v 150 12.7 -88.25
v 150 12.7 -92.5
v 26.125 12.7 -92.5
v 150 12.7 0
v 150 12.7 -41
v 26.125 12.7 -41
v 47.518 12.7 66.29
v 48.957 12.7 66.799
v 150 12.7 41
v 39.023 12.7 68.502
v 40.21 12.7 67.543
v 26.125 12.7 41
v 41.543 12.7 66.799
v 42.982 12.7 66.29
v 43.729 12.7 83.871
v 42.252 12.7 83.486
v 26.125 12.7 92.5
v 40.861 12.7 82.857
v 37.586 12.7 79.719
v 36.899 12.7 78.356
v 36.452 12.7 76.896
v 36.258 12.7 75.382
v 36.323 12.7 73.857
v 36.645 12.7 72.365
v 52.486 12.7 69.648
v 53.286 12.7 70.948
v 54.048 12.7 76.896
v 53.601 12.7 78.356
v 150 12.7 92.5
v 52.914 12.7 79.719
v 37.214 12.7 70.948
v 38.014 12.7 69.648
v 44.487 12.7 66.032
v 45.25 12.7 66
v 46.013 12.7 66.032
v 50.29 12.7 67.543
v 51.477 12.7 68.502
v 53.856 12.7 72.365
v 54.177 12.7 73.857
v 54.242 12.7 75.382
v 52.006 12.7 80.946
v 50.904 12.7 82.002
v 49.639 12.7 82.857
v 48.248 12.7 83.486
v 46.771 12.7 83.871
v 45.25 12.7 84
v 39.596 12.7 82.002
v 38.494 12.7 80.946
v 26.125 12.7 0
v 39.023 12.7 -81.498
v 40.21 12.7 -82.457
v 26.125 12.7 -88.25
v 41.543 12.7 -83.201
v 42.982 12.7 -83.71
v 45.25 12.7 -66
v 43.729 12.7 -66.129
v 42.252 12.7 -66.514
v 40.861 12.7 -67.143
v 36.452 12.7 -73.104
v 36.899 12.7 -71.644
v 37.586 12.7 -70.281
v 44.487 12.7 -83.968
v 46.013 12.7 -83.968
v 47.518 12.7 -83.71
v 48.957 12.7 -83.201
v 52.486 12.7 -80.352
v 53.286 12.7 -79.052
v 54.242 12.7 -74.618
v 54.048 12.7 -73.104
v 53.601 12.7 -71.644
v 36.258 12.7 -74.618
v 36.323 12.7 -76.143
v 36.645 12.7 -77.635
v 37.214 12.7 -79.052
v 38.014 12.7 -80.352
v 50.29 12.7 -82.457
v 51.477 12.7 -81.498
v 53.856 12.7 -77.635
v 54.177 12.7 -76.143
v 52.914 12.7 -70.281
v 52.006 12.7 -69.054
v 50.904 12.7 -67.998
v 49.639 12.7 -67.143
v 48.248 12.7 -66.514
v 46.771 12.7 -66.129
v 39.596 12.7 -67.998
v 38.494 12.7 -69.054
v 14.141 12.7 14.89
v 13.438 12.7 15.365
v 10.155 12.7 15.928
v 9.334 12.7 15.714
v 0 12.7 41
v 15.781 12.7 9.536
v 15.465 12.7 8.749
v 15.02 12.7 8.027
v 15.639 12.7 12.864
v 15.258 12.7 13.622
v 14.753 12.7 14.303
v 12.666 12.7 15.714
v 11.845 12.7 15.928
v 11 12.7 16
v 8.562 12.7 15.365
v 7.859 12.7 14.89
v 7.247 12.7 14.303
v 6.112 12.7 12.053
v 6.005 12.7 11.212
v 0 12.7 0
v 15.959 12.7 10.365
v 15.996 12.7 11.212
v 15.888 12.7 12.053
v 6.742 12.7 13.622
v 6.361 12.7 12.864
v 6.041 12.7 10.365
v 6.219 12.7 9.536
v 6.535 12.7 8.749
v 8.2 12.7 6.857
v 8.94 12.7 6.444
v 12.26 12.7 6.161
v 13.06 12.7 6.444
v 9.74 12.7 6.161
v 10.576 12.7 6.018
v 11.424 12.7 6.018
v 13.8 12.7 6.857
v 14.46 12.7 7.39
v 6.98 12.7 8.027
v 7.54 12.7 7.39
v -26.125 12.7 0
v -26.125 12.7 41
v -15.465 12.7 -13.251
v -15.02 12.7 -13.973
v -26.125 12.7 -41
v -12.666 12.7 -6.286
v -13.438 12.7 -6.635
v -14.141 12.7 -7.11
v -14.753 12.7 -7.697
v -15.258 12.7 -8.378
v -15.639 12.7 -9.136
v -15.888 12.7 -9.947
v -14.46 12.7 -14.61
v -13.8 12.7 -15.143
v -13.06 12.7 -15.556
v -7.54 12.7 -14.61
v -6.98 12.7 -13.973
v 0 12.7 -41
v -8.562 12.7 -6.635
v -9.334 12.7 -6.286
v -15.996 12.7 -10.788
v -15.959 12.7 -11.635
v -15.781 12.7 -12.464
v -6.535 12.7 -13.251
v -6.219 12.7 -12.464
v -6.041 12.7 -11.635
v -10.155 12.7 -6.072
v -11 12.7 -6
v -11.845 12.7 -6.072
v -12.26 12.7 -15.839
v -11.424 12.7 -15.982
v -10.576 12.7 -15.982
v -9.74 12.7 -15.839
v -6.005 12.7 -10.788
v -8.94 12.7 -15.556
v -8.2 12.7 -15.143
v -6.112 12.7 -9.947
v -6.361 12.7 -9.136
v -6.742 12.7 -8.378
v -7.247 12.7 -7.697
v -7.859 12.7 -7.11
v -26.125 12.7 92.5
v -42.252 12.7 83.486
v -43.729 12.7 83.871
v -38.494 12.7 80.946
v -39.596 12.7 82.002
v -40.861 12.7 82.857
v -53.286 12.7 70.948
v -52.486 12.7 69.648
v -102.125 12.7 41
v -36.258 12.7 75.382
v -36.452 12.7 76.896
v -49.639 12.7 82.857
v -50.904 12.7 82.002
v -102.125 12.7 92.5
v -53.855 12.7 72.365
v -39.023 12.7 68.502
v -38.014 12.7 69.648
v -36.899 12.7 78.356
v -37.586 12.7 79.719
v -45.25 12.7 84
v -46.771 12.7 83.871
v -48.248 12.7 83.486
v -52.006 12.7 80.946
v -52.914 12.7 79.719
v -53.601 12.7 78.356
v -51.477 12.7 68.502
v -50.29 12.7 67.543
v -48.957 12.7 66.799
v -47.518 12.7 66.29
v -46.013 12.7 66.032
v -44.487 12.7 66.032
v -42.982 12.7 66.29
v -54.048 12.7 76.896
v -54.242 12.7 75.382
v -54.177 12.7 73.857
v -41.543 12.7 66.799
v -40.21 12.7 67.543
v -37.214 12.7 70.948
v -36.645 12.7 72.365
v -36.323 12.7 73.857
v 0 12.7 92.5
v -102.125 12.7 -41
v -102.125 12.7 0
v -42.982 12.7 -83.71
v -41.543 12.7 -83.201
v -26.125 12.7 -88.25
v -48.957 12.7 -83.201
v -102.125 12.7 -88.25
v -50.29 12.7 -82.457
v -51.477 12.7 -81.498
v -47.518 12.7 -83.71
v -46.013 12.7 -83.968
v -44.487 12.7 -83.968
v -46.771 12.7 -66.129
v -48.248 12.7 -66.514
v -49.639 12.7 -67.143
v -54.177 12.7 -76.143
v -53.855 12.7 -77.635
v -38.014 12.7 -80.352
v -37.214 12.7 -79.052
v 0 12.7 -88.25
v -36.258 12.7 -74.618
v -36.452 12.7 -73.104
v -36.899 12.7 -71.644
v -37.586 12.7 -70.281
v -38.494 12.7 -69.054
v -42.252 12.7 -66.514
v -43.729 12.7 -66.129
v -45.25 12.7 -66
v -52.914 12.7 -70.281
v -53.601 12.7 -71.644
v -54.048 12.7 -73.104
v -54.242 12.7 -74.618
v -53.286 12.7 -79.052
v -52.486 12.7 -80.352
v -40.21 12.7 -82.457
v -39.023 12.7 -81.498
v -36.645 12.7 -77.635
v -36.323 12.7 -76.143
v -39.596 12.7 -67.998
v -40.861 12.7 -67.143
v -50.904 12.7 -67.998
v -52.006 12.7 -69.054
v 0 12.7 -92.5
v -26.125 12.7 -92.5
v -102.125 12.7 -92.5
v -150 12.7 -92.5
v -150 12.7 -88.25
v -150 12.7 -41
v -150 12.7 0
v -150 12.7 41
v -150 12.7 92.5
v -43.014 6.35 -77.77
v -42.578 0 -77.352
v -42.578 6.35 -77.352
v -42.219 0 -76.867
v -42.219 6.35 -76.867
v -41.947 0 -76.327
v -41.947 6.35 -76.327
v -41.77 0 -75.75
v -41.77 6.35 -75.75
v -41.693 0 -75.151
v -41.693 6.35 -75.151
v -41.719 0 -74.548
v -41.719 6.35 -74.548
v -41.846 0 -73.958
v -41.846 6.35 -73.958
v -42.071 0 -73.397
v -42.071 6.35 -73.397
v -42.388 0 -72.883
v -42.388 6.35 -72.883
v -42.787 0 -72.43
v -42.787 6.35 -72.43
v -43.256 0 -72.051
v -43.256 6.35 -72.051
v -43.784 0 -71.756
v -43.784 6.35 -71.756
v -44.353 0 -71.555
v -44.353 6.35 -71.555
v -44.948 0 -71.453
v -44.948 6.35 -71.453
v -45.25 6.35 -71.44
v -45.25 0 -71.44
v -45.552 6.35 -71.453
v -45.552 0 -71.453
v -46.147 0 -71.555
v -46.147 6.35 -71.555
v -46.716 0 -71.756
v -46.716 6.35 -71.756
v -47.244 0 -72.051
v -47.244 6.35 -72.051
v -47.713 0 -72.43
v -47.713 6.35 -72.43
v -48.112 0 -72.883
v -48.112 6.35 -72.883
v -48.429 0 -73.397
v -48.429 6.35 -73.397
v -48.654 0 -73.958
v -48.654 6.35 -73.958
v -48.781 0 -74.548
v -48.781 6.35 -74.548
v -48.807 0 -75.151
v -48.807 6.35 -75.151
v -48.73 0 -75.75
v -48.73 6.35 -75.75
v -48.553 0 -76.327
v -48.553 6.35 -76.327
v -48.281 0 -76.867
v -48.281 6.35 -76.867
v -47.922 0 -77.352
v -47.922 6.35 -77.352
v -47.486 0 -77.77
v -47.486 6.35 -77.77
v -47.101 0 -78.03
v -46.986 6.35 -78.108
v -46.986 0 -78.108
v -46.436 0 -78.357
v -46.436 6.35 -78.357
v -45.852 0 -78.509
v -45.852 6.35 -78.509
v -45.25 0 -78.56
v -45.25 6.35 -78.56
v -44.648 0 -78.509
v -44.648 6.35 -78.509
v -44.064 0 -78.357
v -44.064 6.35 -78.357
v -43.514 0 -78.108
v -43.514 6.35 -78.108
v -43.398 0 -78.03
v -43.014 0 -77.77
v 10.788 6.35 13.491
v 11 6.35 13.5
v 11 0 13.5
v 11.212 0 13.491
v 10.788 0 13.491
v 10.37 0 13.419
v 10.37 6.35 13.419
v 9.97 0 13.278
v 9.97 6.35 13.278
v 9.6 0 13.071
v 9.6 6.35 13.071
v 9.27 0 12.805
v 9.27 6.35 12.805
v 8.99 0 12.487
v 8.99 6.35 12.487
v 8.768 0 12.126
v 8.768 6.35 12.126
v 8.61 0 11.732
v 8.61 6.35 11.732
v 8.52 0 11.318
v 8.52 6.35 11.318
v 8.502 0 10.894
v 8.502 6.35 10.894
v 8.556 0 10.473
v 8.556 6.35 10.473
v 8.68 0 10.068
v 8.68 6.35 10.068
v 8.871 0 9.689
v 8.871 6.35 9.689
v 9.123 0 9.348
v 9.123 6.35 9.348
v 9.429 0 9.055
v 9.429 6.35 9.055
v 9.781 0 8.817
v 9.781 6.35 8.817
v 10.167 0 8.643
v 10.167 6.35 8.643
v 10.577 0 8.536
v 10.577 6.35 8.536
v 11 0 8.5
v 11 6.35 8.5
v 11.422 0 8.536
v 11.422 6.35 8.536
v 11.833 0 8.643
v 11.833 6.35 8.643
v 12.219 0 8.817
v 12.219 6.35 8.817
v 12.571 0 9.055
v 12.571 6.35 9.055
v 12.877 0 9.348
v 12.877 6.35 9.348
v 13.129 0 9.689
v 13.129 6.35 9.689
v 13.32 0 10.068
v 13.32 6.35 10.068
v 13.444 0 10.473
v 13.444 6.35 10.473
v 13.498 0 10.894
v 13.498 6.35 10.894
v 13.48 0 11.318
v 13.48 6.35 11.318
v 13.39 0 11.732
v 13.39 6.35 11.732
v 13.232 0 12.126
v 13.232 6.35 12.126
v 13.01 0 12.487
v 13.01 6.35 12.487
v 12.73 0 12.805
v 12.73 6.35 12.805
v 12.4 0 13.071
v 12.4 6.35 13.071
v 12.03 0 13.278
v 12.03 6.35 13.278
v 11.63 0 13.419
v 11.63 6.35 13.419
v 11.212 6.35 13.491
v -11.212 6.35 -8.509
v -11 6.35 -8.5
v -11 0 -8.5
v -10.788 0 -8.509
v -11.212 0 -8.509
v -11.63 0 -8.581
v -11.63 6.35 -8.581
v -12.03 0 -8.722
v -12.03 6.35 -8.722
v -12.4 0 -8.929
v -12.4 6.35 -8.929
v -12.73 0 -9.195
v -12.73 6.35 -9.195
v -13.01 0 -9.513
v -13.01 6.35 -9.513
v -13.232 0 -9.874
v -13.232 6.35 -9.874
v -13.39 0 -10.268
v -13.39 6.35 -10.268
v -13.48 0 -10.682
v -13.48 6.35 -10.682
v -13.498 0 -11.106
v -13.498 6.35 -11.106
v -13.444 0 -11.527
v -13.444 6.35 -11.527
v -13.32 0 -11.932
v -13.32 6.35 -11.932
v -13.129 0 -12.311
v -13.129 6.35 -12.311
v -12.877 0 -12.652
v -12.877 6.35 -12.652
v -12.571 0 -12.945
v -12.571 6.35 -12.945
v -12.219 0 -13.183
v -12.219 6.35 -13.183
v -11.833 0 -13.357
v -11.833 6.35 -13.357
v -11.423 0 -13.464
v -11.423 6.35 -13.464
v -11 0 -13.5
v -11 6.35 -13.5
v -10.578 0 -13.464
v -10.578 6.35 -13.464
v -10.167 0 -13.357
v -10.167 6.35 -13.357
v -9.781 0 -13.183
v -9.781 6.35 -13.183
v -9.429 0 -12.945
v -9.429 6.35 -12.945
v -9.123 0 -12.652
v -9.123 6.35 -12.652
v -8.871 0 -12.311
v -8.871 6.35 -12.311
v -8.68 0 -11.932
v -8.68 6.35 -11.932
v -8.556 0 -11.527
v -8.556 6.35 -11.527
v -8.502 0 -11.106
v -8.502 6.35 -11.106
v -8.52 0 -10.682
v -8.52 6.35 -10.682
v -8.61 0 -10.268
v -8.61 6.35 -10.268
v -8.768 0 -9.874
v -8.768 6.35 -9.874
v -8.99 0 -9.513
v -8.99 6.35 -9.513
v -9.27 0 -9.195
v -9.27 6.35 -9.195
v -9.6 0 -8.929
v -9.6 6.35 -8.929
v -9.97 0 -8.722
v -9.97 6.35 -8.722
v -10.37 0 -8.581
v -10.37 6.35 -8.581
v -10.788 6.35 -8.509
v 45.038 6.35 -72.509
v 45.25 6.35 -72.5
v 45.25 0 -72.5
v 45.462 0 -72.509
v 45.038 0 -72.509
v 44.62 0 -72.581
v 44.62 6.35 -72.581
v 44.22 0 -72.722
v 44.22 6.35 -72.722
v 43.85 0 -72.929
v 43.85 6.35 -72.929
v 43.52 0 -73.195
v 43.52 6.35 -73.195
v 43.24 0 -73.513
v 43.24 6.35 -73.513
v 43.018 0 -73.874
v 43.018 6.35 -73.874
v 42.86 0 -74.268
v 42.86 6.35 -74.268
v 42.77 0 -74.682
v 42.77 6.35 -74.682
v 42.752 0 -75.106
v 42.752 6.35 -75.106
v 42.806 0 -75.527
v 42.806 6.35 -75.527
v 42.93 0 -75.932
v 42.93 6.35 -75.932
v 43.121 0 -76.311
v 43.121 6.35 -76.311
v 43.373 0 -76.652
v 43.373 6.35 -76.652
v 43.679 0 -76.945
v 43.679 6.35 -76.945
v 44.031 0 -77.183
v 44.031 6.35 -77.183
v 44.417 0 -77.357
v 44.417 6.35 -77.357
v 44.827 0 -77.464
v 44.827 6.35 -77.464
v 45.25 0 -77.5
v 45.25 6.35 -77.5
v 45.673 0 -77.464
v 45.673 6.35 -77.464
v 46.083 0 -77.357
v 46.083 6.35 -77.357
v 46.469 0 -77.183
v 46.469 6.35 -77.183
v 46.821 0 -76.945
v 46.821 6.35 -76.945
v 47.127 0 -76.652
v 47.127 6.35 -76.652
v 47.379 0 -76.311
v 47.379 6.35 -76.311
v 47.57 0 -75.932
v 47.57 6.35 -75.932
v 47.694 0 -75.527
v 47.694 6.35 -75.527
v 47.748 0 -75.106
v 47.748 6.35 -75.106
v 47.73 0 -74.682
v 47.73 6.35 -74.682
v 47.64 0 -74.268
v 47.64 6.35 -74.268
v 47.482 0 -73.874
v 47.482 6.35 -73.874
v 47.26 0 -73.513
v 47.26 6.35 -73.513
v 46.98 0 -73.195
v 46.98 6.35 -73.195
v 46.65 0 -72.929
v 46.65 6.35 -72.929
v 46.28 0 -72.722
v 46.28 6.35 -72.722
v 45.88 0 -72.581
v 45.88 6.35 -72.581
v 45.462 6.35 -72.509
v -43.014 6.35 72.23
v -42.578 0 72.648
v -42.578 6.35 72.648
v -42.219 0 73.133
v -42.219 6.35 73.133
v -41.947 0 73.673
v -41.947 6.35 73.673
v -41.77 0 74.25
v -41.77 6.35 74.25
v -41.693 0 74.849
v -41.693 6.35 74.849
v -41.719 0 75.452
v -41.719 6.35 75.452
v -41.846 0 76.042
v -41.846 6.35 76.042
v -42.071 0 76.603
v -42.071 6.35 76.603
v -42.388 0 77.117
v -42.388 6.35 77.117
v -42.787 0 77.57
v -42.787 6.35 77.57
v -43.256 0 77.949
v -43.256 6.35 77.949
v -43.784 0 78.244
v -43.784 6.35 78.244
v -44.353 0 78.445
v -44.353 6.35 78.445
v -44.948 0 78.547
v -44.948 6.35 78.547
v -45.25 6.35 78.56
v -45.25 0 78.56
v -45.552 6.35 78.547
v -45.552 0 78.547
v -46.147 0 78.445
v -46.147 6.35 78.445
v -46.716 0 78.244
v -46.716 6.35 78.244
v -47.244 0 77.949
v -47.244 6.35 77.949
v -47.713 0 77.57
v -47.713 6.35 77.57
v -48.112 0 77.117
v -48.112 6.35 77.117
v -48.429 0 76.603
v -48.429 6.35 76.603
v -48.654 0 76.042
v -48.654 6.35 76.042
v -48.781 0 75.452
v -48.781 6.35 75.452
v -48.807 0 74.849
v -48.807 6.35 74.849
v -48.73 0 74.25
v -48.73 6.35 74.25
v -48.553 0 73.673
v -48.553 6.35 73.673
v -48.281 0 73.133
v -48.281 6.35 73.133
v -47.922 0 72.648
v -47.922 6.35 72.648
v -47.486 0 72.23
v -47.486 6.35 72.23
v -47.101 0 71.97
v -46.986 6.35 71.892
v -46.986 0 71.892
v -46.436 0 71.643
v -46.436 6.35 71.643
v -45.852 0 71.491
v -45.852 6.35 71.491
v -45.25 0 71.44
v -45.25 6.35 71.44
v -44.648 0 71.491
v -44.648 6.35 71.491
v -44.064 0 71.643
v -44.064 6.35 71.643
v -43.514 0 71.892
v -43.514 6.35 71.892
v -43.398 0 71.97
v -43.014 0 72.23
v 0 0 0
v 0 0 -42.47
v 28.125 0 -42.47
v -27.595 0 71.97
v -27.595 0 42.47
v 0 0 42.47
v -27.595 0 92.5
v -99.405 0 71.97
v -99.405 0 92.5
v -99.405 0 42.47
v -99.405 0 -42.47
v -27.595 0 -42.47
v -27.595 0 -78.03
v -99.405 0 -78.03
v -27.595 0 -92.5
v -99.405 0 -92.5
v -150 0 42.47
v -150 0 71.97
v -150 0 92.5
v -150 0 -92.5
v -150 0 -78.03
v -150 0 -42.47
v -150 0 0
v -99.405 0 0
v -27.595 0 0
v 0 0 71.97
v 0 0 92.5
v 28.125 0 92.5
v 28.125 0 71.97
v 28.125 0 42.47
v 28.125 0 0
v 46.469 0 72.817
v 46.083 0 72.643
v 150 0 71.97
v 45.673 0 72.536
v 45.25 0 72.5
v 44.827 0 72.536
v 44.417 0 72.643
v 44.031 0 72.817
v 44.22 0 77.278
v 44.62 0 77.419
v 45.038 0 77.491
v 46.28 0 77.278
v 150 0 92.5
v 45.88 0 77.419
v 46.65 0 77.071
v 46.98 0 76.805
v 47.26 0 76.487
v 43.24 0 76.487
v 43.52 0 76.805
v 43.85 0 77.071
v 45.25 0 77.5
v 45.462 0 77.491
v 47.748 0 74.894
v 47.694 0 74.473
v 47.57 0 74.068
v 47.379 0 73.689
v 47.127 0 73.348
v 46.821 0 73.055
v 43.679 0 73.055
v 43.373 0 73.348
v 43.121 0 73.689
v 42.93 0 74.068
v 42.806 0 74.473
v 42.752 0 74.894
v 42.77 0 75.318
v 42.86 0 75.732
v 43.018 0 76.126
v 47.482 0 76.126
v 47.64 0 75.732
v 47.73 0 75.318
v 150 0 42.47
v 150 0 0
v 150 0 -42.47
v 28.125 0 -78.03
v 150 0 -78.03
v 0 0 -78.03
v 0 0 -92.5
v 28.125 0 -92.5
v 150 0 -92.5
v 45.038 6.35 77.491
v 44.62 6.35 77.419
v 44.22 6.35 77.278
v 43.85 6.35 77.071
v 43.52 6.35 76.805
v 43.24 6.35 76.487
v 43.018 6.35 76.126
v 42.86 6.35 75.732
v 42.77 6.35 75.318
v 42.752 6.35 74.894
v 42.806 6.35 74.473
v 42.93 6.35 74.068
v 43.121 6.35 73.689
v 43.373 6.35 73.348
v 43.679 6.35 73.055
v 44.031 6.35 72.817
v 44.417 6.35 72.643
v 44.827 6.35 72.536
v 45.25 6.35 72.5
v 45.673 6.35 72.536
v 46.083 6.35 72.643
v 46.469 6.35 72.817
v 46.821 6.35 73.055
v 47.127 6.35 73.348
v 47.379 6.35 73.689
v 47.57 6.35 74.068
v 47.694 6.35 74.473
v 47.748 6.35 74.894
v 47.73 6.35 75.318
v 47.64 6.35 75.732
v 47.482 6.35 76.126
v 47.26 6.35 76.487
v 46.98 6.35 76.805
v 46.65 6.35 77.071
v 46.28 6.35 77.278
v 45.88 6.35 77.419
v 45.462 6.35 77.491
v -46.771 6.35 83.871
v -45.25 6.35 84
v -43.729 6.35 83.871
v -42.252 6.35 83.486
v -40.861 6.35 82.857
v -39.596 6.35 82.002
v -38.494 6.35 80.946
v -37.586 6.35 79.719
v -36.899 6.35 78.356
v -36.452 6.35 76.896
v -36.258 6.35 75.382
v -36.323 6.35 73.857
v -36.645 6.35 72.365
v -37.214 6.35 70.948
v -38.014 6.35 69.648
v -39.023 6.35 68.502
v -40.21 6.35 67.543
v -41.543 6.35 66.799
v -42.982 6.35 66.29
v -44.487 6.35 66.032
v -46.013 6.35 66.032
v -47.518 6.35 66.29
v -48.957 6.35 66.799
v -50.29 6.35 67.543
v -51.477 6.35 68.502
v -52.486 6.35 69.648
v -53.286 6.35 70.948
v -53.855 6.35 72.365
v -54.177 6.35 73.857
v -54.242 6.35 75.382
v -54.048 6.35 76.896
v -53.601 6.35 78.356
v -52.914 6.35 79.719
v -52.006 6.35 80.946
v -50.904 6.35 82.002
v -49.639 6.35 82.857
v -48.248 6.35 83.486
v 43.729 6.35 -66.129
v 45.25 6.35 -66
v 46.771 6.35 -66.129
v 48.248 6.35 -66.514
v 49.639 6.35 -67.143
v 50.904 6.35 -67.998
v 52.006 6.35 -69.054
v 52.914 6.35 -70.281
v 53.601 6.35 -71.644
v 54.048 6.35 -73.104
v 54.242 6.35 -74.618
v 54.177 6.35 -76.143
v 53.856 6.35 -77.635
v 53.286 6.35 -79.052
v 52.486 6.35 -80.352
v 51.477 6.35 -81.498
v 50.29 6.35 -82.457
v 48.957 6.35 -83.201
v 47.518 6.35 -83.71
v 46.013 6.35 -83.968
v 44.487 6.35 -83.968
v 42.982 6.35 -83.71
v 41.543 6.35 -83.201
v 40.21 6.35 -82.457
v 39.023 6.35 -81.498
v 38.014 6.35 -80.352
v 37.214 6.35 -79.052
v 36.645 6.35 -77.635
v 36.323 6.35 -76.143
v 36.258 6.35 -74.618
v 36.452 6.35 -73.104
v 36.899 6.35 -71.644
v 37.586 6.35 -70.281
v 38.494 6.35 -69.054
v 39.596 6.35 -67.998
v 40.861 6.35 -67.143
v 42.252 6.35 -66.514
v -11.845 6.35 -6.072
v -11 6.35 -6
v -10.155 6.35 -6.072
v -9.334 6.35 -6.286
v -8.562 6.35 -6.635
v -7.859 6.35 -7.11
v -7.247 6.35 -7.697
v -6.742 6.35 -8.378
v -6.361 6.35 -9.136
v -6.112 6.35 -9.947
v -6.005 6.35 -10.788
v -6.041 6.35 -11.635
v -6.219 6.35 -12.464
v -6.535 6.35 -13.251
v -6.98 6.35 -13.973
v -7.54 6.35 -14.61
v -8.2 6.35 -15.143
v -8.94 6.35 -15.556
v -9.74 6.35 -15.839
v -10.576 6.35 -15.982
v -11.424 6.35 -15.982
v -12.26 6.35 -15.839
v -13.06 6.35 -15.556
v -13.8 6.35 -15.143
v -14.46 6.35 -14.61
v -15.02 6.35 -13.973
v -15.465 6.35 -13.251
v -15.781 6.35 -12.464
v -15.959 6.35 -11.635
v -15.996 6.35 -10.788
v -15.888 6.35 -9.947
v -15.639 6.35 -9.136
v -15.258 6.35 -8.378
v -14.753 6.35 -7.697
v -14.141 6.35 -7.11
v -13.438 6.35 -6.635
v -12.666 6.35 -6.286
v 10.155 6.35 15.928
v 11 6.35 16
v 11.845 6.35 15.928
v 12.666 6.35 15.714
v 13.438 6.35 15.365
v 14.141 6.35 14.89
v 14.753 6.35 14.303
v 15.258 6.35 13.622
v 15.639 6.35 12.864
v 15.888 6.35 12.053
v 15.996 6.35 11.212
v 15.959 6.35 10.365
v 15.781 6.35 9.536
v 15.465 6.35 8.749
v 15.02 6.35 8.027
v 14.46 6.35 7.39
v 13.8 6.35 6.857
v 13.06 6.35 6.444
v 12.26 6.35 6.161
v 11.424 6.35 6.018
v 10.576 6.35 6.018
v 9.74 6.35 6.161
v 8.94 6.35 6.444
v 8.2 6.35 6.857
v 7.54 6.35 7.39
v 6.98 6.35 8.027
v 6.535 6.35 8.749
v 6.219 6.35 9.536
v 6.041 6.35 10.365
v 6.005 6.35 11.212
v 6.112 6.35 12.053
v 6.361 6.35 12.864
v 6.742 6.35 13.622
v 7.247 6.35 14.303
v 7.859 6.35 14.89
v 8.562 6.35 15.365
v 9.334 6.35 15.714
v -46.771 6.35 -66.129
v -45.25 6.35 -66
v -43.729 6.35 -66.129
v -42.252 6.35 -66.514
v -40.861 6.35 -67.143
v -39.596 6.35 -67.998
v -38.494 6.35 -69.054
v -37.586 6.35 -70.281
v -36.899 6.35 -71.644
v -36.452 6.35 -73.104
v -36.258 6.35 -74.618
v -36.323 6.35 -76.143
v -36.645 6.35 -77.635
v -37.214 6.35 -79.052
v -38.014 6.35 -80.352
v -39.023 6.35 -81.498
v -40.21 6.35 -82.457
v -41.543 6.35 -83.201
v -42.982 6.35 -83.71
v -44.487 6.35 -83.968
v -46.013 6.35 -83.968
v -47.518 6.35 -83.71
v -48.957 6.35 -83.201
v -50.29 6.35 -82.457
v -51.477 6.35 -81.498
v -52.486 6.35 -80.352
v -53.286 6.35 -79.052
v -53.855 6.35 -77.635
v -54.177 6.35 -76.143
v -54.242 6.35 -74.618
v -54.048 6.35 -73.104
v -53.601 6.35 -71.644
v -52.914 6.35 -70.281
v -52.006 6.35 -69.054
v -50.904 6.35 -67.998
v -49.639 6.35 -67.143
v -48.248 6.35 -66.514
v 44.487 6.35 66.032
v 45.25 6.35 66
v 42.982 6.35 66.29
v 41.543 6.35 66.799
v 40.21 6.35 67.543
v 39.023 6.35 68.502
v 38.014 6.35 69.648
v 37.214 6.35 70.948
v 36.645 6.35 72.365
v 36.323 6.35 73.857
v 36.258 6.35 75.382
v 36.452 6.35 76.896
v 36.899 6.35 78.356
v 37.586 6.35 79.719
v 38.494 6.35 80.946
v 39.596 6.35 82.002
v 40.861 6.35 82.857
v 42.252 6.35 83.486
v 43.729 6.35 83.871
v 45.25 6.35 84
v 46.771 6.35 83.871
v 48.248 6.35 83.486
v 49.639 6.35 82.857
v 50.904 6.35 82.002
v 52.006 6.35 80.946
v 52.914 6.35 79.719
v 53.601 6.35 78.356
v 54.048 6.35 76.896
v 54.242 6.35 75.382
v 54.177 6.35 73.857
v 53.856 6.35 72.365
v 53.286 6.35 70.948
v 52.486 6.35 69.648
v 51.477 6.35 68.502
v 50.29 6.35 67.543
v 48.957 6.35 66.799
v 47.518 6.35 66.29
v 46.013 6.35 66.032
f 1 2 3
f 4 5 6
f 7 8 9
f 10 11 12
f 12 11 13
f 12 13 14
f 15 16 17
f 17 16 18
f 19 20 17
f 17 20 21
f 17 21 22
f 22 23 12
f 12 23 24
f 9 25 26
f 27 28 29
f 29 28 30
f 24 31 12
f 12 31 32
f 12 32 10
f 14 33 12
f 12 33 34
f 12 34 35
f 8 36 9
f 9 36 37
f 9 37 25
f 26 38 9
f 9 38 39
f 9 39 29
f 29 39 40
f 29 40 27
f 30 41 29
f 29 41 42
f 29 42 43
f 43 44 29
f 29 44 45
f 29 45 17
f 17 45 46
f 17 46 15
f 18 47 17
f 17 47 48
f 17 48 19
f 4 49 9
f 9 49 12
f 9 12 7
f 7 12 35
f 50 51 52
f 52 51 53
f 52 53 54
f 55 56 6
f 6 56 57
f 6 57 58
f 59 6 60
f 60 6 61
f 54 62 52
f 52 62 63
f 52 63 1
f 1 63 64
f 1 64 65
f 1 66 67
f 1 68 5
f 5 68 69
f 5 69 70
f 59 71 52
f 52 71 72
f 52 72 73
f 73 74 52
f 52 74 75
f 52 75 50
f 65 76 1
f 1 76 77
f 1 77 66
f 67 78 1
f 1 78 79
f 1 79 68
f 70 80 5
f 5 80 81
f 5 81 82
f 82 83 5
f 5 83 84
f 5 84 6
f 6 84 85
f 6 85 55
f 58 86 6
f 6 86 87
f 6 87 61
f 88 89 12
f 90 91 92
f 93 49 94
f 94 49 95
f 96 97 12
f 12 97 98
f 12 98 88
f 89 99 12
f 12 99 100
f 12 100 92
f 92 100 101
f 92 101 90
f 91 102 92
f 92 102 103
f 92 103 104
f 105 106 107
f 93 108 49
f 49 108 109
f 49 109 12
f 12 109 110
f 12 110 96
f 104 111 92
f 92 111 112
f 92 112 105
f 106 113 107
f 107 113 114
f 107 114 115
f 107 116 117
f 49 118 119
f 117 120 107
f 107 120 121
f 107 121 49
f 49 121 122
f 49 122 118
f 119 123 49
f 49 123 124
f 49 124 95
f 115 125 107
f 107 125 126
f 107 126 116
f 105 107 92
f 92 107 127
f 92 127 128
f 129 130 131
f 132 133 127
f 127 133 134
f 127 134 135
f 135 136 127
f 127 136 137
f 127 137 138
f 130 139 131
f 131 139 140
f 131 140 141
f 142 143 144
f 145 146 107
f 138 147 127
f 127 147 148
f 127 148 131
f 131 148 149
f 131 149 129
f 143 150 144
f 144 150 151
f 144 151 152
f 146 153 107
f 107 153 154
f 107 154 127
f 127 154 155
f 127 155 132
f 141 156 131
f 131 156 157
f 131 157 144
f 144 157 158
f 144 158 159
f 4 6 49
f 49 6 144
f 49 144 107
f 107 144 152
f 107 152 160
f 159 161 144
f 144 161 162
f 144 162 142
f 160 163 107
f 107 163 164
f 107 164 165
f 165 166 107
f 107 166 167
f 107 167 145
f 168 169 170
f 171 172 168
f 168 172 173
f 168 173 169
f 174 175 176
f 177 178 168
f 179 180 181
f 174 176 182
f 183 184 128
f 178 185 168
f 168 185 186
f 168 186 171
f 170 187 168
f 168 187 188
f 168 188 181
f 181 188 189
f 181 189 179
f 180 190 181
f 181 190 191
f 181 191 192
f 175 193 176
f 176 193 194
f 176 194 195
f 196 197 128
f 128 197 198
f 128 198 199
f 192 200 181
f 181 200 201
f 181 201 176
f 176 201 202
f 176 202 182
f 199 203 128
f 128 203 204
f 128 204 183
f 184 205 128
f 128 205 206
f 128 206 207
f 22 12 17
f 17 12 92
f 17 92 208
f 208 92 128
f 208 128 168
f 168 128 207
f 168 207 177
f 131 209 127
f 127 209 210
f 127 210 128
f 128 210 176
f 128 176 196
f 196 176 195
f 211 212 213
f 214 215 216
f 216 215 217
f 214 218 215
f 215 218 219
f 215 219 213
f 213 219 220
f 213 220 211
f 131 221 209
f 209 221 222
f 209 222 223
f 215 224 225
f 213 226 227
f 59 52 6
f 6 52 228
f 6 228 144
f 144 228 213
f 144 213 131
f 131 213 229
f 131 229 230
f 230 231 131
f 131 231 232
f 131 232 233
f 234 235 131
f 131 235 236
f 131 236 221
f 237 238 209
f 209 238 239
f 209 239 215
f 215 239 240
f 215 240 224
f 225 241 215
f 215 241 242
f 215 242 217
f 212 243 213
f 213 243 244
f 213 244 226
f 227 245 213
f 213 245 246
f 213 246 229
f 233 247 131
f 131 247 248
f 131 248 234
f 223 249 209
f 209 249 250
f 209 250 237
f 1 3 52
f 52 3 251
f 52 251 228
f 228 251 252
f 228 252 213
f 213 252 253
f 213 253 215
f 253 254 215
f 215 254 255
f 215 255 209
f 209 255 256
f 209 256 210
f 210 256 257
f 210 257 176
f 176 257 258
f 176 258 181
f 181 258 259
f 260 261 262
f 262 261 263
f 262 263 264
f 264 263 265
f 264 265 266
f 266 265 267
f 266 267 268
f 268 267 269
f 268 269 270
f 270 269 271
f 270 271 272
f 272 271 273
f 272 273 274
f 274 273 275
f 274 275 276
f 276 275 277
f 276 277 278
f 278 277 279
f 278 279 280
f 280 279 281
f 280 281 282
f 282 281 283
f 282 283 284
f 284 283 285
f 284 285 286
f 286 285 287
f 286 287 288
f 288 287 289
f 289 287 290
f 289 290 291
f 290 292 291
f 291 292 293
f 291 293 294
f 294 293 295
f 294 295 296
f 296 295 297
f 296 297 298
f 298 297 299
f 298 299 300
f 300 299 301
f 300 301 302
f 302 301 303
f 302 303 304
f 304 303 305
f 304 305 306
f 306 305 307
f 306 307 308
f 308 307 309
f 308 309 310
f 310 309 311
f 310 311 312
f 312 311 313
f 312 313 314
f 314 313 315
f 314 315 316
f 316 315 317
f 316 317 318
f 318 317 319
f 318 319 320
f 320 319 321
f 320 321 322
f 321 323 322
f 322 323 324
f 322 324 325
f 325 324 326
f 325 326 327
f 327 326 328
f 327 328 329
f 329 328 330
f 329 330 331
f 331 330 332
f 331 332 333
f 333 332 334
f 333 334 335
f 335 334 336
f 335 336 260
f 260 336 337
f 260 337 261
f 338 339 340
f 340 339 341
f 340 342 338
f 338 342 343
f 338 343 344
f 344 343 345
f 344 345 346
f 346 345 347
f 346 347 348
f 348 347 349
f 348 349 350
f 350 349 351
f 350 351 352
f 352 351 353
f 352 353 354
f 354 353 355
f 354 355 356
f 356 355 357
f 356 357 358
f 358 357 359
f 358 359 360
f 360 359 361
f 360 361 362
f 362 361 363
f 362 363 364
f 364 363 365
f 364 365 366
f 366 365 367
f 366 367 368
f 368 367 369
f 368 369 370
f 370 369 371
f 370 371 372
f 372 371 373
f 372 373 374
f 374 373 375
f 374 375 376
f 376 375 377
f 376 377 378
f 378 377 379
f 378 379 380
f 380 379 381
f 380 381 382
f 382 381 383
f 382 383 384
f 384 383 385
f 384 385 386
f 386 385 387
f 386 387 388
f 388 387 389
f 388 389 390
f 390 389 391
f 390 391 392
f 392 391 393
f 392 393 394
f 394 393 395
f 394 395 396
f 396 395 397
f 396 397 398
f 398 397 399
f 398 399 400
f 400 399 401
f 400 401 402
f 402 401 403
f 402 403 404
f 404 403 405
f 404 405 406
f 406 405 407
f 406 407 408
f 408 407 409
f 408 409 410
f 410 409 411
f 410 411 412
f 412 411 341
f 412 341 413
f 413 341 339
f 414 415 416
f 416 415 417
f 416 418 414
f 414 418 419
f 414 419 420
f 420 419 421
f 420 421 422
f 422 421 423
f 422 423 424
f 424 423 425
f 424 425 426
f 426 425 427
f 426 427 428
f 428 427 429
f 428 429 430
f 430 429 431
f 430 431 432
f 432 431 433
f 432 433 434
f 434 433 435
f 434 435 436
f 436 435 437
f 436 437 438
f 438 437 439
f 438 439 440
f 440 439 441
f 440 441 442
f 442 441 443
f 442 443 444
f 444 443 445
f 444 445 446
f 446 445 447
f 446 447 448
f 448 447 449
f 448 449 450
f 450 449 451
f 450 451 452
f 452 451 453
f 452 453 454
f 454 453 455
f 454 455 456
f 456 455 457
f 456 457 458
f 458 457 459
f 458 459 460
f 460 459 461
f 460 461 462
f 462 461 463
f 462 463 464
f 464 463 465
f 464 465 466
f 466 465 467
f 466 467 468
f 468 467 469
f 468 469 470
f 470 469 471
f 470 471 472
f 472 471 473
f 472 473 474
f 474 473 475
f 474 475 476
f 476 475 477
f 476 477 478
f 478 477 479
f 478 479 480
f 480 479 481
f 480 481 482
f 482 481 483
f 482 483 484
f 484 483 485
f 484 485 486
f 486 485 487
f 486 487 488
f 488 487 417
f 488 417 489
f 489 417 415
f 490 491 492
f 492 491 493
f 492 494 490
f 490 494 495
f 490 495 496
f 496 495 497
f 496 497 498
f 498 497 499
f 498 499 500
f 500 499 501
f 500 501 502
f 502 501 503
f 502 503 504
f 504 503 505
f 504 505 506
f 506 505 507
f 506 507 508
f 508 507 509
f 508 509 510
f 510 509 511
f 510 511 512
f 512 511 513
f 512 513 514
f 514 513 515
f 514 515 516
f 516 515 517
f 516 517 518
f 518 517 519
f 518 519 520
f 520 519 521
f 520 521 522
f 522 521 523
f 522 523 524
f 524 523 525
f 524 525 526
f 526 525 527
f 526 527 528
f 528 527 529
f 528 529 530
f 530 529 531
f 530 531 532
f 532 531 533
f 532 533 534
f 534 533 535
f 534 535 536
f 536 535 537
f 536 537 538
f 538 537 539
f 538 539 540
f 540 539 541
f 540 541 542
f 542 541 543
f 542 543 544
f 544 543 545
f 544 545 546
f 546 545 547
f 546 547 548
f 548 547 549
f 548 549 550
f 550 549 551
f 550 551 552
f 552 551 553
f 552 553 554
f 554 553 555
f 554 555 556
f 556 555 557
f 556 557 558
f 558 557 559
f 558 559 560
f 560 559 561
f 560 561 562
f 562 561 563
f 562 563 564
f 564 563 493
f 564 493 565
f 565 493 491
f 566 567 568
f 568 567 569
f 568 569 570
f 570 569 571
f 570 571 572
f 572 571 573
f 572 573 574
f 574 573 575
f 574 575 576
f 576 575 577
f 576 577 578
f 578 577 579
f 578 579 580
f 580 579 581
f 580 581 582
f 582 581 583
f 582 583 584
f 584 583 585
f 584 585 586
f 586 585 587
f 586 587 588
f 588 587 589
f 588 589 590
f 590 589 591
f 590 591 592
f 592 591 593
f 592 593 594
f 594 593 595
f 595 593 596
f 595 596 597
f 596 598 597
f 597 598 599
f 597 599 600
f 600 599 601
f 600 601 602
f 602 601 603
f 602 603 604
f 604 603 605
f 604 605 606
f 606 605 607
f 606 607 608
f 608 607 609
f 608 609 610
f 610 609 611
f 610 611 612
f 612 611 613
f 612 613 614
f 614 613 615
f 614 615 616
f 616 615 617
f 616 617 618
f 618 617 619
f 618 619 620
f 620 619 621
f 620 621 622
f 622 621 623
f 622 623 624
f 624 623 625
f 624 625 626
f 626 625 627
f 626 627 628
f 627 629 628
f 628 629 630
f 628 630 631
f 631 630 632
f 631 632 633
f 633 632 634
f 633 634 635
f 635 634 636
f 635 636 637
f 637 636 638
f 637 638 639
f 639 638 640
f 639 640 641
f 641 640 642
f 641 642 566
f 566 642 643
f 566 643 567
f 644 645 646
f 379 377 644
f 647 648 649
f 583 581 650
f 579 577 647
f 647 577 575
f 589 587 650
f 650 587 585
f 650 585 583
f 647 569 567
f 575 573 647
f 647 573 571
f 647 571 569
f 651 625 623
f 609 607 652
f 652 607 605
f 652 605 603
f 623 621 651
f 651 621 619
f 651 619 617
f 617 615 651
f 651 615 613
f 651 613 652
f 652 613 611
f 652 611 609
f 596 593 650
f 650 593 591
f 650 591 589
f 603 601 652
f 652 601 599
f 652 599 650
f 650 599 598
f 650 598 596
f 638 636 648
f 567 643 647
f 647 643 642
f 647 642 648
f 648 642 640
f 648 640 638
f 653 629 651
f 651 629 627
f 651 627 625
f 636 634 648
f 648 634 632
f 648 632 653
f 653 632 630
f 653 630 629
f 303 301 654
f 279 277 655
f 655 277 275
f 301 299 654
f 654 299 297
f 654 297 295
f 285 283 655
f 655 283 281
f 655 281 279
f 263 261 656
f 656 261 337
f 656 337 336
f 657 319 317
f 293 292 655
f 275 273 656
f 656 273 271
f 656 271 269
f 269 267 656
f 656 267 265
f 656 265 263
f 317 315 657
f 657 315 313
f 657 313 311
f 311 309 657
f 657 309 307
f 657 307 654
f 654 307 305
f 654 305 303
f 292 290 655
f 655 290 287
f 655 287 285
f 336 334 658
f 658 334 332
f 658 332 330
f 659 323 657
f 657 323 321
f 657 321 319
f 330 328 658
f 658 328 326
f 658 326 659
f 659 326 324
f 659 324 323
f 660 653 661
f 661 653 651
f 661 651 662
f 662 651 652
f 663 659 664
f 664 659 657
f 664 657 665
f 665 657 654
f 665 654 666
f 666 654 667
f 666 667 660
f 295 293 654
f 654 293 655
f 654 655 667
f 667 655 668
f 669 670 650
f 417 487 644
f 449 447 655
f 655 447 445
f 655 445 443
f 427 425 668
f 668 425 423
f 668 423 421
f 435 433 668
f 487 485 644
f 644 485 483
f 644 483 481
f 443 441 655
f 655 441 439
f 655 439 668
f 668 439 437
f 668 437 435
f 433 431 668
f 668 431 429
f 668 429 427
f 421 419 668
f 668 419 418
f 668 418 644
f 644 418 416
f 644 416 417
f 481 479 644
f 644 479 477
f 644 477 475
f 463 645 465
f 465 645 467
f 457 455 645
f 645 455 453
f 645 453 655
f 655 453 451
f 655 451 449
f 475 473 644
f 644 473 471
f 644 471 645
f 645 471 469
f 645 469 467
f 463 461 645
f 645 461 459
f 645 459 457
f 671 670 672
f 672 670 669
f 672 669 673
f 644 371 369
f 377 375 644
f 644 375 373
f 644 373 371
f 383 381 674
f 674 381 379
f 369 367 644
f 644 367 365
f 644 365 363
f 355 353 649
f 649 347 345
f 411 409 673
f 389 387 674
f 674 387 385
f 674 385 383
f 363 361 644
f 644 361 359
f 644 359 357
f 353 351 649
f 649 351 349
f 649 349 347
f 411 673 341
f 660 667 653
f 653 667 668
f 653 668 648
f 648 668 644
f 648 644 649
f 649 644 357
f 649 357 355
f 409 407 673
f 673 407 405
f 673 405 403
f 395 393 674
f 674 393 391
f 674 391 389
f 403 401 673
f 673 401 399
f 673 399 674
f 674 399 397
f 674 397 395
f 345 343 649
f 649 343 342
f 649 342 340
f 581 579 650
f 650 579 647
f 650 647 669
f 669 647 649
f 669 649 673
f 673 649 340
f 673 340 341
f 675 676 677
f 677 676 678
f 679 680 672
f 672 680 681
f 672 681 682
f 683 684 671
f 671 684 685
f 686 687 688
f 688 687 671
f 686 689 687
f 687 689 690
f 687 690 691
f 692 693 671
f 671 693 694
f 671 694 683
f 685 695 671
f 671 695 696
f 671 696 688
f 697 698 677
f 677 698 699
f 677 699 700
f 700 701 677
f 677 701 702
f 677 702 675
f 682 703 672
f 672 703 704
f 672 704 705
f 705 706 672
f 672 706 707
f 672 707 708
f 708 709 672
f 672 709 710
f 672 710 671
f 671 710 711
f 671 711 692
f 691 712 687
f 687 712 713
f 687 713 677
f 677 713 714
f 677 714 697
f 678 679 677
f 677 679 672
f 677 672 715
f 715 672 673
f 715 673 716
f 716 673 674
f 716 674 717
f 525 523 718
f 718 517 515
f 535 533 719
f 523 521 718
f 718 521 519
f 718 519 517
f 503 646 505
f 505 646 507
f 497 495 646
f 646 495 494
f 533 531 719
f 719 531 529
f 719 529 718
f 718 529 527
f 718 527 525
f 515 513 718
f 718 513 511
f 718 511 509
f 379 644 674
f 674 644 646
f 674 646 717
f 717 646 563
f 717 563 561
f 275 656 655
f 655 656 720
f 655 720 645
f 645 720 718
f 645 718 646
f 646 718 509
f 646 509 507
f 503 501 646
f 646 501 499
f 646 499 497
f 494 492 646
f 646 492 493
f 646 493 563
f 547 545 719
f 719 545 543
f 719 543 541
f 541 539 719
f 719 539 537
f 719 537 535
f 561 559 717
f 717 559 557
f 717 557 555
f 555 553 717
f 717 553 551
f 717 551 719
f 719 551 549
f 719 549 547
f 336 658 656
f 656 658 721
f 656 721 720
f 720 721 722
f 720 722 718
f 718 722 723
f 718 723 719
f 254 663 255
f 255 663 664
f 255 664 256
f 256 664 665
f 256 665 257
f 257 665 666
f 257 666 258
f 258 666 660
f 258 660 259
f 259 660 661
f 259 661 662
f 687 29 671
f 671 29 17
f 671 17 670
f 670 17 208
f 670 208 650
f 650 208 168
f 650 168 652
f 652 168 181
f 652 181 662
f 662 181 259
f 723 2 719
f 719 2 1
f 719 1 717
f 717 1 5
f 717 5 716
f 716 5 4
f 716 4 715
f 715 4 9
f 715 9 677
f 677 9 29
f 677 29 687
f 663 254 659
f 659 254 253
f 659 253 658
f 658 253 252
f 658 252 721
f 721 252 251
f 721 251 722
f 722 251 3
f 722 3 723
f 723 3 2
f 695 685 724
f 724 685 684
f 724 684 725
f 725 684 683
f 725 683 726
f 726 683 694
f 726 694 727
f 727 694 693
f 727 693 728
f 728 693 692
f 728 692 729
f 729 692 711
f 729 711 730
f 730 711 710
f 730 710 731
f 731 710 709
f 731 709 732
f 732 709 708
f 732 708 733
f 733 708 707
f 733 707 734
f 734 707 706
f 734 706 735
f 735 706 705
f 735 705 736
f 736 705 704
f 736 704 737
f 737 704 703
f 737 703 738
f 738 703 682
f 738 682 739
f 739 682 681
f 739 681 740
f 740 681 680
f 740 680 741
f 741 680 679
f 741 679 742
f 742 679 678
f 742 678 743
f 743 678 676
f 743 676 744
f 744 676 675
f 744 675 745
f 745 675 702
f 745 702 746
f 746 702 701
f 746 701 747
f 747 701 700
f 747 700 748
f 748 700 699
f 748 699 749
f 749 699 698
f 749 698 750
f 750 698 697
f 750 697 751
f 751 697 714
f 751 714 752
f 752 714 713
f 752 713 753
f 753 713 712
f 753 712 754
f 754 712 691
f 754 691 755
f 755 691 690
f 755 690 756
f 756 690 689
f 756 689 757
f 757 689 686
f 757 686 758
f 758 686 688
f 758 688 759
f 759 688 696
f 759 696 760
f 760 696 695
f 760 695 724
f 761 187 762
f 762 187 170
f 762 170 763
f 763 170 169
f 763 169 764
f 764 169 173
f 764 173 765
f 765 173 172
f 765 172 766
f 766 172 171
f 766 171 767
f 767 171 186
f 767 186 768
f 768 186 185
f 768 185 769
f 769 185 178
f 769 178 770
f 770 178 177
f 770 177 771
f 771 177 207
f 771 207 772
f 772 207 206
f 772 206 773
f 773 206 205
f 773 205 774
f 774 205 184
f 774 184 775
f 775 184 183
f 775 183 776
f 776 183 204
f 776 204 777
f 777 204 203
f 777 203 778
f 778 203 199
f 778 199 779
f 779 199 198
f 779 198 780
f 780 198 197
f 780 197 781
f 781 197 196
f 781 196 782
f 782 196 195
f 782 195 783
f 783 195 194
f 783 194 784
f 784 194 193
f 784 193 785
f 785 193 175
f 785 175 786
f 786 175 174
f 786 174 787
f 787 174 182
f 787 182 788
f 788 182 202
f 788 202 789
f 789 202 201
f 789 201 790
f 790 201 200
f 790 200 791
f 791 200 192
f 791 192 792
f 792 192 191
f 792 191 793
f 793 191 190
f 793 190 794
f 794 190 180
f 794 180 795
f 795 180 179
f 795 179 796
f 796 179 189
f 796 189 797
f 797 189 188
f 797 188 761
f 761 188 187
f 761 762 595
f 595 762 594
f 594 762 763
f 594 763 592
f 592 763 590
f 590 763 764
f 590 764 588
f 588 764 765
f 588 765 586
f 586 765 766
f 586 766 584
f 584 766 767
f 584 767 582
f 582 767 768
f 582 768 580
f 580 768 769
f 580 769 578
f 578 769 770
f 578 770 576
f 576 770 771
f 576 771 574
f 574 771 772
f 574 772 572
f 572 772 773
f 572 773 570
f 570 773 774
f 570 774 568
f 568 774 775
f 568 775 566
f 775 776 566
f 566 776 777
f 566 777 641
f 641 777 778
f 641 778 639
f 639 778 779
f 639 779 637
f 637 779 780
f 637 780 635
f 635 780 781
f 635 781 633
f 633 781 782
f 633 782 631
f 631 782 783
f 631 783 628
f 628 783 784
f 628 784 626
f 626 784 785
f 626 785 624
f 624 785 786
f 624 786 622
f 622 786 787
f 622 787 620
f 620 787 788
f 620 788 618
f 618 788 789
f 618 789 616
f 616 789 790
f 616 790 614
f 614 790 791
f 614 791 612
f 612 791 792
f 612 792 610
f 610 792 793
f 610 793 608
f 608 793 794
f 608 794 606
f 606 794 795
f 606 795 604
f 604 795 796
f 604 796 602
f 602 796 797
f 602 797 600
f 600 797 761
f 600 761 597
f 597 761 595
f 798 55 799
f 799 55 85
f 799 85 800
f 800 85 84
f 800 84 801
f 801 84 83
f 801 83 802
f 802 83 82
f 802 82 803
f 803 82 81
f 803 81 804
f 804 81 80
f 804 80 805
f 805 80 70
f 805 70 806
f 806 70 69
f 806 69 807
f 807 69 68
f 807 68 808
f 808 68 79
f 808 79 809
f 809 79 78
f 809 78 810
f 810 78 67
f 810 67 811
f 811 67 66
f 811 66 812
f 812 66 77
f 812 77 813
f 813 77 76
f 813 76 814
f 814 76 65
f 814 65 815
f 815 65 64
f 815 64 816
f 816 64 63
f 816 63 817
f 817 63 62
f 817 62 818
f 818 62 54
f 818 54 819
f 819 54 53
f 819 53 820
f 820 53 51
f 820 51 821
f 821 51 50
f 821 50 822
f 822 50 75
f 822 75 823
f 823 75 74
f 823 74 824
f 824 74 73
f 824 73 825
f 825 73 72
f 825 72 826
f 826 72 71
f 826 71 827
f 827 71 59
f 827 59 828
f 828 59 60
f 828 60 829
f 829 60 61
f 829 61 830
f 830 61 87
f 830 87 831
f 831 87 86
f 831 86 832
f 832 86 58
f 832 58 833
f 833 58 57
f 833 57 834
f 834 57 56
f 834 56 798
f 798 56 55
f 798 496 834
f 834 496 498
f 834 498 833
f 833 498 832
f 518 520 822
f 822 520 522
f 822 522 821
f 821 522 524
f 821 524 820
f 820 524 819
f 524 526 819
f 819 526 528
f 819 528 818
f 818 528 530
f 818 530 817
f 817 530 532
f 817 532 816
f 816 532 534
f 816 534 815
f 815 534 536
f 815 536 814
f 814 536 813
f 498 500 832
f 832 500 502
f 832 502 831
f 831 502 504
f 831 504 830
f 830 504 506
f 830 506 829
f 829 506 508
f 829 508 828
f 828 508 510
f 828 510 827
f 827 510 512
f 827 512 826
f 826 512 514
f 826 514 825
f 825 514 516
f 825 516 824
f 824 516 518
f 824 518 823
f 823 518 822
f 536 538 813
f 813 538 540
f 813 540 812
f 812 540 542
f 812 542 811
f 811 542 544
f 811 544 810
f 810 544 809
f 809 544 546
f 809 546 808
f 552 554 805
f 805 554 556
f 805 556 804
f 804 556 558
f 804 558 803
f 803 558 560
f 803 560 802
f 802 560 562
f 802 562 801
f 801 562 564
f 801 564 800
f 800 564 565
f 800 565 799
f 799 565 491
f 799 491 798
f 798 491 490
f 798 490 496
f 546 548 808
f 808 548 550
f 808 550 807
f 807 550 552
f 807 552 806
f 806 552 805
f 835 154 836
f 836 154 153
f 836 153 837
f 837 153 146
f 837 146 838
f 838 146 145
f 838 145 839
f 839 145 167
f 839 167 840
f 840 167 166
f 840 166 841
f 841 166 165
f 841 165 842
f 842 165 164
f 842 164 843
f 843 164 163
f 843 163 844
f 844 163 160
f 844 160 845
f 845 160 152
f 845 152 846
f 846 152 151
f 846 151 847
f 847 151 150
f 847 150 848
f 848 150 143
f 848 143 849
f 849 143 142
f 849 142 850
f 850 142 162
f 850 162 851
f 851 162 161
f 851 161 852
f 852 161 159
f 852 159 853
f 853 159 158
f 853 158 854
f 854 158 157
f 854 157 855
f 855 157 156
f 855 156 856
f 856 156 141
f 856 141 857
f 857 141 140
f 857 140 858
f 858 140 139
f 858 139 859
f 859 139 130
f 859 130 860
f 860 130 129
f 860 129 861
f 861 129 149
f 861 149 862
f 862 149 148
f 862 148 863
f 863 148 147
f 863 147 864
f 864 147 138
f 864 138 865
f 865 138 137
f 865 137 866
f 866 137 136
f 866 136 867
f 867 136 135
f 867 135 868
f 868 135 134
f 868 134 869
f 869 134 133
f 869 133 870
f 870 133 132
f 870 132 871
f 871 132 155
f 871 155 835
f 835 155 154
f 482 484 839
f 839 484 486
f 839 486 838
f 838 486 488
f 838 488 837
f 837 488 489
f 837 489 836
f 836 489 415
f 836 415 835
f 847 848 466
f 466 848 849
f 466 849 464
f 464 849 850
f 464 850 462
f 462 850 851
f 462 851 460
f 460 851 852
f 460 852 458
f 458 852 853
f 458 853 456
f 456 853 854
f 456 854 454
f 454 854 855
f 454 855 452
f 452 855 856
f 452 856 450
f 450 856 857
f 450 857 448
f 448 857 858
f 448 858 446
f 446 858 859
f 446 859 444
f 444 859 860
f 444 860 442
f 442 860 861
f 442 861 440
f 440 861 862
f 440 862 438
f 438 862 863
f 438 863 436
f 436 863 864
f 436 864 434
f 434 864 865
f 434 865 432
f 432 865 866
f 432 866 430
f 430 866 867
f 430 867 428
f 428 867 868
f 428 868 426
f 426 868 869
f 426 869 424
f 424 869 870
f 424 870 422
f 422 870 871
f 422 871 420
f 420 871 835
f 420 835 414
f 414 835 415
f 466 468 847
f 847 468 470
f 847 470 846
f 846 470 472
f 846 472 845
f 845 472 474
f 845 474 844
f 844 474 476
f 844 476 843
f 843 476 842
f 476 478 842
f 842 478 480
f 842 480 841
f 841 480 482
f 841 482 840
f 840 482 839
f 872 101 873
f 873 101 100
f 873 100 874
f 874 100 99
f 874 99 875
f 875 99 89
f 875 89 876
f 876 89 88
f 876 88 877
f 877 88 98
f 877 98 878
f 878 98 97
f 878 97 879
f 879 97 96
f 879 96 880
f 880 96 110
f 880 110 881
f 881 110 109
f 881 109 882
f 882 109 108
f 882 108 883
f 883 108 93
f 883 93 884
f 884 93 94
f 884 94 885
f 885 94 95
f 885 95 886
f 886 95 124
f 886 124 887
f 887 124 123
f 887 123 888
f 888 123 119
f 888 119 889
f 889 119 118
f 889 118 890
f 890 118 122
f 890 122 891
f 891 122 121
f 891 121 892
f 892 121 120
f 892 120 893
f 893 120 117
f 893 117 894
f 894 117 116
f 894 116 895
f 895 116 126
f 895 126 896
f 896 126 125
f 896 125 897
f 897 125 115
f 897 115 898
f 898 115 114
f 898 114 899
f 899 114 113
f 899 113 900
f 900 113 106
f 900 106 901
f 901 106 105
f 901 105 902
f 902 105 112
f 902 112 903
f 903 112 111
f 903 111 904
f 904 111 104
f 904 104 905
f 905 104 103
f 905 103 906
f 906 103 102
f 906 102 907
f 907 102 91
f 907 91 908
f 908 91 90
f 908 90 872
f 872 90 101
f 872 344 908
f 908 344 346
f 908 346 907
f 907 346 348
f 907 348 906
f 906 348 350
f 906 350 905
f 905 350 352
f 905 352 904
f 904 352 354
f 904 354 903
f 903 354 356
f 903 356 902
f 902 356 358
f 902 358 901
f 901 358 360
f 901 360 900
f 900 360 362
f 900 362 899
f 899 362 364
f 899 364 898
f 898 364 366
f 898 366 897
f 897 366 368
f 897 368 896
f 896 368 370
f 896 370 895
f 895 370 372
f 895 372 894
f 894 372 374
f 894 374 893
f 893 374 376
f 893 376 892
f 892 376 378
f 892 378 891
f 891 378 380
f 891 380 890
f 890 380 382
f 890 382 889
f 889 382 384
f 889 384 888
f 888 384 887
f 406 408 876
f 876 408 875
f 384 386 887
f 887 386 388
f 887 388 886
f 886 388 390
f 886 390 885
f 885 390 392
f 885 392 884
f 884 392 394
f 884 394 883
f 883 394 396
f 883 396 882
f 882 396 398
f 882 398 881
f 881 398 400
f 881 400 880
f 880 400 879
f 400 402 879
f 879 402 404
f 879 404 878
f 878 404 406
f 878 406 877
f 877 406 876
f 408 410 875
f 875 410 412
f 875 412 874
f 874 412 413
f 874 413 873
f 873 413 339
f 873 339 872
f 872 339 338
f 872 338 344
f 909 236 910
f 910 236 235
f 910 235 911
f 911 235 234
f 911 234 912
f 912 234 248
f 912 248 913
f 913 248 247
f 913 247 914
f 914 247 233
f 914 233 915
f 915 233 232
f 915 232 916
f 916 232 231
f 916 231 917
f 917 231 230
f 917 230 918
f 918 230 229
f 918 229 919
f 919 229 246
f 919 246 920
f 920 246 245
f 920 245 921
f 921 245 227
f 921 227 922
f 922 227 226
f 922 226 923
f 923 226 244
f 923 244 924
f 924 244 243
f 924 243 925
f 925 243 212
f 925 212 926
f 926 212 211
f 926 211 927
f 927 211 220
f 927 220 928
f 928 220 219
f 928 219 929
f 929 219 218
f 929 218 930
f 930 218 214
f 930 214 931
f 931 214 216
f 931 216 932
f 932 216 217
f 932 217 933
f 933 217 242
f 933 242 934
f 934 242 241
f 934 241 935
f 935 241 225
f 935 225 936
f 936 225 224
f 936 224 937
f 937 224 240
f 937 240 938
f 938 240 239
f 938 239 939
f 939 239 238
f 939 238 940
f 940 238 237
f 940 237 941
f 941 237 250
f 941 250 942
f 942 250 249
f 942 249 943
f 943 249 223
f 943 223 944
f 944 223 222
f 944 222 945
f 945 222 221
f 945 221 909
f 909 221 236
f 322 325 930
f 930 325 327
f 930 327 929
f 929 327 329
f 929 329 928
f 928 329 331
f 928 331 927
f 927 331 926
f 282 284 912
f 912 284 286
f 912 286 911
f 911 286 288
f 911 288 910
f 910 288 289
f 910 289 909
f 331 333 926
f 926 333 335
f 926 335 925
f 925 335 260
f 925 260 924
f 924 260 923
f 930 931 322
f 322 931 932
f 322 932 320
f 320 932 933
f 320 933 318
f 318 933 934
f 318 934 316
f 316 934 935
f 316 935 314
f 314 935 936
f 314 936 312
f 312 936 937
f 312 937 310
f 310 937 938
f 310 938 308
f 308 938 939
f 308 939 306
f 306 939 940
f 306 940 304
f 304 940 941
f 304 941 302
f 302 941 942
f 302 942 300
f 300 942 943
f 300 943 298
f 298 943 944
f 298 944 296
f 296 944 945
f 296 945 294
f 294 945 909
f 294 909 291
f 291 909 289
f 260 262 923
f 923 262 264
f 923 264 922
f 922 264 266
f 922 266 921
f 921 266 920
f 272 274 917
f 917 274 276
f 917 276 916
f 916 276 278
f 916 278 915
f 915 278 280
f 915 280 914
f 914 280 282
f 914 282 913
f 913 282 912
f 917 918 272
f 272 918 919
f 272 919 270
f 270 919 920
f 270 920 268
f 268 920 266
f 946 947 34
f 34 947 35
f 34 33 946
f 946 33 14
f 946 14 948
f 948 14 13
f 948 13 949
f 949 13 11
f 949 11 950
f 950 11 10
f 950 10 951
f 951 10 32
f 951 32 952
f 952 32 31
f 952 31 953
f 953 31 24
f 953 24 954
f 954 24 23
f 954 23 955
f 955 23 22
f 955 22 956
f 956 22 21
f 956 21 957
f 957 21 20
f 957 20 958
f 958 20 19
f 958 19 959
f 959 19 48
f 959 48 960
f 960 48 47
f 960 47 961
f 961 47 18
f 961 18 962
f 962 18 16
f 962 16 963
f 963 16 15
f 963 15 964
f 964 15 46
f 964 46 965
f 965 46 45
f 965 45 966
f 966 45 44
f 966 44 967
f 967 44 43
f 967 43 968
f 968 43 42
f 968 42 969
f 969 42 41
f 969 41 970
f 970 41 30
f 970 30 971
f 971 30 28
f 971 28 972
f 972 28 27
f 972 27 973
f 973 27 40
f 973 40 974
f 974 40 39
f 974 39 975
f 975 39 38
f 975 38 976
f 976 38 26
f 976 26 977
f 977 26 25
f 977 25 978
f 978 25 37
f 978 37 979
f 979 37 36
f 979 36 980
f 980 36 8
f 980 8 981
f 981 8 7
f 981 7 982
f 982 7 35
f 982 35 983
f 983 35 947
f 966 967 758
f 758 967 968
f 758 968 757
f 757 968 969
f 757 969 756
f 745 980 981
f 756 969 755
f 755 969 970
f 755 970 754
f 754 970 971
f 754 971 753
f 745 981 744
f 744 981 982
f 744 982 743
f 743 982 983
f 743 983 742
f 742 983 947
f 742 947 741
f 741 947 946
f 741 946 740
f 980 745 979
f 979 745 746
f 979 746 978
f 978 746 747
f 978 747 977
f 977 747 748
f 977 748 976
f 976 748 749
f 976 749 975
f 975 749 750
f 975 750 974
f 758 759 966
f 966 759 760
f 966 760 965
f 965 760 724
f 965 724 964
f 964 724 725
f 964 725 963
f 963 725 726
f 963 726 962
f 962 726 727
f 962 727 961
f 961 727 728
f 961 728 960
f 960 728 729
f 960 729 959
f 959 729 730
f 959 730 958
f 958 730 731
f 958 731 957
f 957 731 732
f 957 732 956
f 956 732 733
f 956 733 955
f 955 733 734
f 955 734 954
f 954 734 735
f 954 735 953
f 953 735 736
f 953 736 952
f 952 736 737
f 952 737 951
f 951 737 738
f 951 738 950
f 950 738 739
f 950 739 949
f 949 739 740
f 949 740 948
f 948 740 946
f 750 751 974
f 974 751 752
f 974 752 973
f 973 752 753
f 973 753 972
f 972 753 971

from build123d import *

# Parameters (mm, degrees)
SKETCH1_W           = 300
SKETCH1_H           = 185
SKETCH1_R           = 3.56
SKETCH1_R_2         = 2.5
BOSS_EXTRUDE1_DEPTH = 12.7
CUT_EXTRUDE1_START  = -6.35
SKETCH2_R           = 9
SKETCH2_R_2         = 3.56
SKETCH2_R_3         = 2.5
SKETCH2_R_4         = 5
CUT_EXTRUDE1_DEPTH  = 6.35


with BuildPart() as part:
    # Sketch1 → Boss-Extrude1 (new body)
    with BuildSketch(Plane(origin=(0, 0, 0), x_dir=(1, 0, 0), z_dir=(0, 1, 0))):
        Rectangle(SKETCH1_W, SKETCH1_H)
        with Locations(Location((-45.25, 75, 0), (0, 0, 270))):
            Circle(SKETCH1_R, mode=Mode.SUBTRACT)
        with Locations(Location((-45.25, -75, 0), (0, 0, 270))):
            Circle(SKETCH1_R, mode=Mode.SUBTRACT)
        with Locations(Location((45.25, 75, 0), (0, 0, 270))):
            Circle(SKETCH1_R_2, mode=Mode.SUBTRACT)
        with Locations(Location((45.25, -75, 0), (0, 0, 270))):
            Circle(SKETCH1_R_2, mode=Mode.SUBTRACT)
        with Locations(Location((-11, 11, 0), (0, 0, 270))):
            Circle(SKETCH1_R_2, mode=Mode.SUBTRACT)
        with Locations(Location((11, -11, 0), (0, 0, 270))):
            Circle(SKETCH1_R_2, mode=Mode.SUBTRACT)
    extrude(amount=BOSS_EXTRUDE1_DEPTH)

    # Sketch2 → Cut-Extrude1 (cut)
    # profile 1 of 6: a face of its own
    with BuildSketch(Plane(origin=(0, 12.7, 0), x_dir=(1, 0, 0), z_dir=(0, 1, 0)).offset(CUT_EXTRUDE1_START)):
        with Locations(Location((-45.25, 75, 0), (0, 0, 270))):
            Circle(SKETCH2_R)
        with Locations(Location((-45.25, 75, 0), (0, 0, 270))):
            Circle(SKETCH2_R_2, mode=Mode.SUBTRACT)
    # profile 2 of 6: a face of its own
    with BuildSketch(Plane(origin=(0, 12.7, 0), x_dir=(1, 0, 0), z_dir=(0, 1, 0)).offset(CUT_EXTRUDE1_START)):
        with Locations(Location((45.25, 75, 0), (0, 0, 270))):
            Circle(SKETCH2_R)
        with Locations(Location((45.25, 75, 0), (0, 0, 270))):
            Circle(SKETCH2_R_3, mode=Mode.SUBTRACT)
    # profile 3 of 6: a face of its own
    with BuildSketch(Plane(origin=(0, 12.7, 0), x_dir=(1, 0, 0), z_dir=(0, 1, 0)).offset(CUT_EXTRUDE1_START)):
        with Locations(Location((45.25, -75, 0), (0, 0, 90))):
            Circle(SKETCH2_R)
        with Locations(Location((45.25, -75, 0), (0, 0, 90))):
            Circle(SKETCH2_R_3, mode=Mode.SUBTRACT)
    # profile 4 of 6: a face of its own
    with BuildSketch(Plane(origin=(0, 12.7, 0), x_dir=(1, 0, 0), z_dir=(0, 1, 0)).offset(CUT_EXTRUDE1_START)):
        with Locations(Location((-45.25, -75, 0), (0, 0, 270))):
            Circle(SKETCH2_R)
        with Locations(Location((-45.25, -75, 0), (0, 0, 270))):
            Circle(SKETCH2_R_2, mode=Mode.SUBTRACT)
    # profile 5 of 6: a face of its own
    with BuildSketch(Plane(origin=(0, 12.7, 0), x_dir=(1, 0, 0), z_dir=(0, 1, 0)).offset(CUT_EXTRUDE1_START)):
        with Locations(Location((-11, 11, 0), (0, 0, 270))):
            Circle(SKETCH2_R_4)
        with Locations(Location((-11, 11, 0), (0, 0, 270))):
            Circle(SKETCH2_R_3, mode=Mode.SUBTRACT)
    # profile 6 of 6: a face of its own
    with BuildSketch(Plane(origin=(0, 12.7, 0), x_dir=(1, 0, 0), z_dir=(0, 1, 0)).offset(CUT_EXTRUDE1_START)):
        with Locations(Location((11, -11, 0), (0, 0, 270))):
            Circle(SKETCH2_R_4)
        with Locations(Location((11, -11, 0), (0, 0, 270))):
            Circle(SKETCH2_R_3, mode=Mode.SUBTRACT)
    extrude(amount=CUT_EXTRUDE1_DEPTH, mode=Mode.SUBTRACT)


solid = part.part
